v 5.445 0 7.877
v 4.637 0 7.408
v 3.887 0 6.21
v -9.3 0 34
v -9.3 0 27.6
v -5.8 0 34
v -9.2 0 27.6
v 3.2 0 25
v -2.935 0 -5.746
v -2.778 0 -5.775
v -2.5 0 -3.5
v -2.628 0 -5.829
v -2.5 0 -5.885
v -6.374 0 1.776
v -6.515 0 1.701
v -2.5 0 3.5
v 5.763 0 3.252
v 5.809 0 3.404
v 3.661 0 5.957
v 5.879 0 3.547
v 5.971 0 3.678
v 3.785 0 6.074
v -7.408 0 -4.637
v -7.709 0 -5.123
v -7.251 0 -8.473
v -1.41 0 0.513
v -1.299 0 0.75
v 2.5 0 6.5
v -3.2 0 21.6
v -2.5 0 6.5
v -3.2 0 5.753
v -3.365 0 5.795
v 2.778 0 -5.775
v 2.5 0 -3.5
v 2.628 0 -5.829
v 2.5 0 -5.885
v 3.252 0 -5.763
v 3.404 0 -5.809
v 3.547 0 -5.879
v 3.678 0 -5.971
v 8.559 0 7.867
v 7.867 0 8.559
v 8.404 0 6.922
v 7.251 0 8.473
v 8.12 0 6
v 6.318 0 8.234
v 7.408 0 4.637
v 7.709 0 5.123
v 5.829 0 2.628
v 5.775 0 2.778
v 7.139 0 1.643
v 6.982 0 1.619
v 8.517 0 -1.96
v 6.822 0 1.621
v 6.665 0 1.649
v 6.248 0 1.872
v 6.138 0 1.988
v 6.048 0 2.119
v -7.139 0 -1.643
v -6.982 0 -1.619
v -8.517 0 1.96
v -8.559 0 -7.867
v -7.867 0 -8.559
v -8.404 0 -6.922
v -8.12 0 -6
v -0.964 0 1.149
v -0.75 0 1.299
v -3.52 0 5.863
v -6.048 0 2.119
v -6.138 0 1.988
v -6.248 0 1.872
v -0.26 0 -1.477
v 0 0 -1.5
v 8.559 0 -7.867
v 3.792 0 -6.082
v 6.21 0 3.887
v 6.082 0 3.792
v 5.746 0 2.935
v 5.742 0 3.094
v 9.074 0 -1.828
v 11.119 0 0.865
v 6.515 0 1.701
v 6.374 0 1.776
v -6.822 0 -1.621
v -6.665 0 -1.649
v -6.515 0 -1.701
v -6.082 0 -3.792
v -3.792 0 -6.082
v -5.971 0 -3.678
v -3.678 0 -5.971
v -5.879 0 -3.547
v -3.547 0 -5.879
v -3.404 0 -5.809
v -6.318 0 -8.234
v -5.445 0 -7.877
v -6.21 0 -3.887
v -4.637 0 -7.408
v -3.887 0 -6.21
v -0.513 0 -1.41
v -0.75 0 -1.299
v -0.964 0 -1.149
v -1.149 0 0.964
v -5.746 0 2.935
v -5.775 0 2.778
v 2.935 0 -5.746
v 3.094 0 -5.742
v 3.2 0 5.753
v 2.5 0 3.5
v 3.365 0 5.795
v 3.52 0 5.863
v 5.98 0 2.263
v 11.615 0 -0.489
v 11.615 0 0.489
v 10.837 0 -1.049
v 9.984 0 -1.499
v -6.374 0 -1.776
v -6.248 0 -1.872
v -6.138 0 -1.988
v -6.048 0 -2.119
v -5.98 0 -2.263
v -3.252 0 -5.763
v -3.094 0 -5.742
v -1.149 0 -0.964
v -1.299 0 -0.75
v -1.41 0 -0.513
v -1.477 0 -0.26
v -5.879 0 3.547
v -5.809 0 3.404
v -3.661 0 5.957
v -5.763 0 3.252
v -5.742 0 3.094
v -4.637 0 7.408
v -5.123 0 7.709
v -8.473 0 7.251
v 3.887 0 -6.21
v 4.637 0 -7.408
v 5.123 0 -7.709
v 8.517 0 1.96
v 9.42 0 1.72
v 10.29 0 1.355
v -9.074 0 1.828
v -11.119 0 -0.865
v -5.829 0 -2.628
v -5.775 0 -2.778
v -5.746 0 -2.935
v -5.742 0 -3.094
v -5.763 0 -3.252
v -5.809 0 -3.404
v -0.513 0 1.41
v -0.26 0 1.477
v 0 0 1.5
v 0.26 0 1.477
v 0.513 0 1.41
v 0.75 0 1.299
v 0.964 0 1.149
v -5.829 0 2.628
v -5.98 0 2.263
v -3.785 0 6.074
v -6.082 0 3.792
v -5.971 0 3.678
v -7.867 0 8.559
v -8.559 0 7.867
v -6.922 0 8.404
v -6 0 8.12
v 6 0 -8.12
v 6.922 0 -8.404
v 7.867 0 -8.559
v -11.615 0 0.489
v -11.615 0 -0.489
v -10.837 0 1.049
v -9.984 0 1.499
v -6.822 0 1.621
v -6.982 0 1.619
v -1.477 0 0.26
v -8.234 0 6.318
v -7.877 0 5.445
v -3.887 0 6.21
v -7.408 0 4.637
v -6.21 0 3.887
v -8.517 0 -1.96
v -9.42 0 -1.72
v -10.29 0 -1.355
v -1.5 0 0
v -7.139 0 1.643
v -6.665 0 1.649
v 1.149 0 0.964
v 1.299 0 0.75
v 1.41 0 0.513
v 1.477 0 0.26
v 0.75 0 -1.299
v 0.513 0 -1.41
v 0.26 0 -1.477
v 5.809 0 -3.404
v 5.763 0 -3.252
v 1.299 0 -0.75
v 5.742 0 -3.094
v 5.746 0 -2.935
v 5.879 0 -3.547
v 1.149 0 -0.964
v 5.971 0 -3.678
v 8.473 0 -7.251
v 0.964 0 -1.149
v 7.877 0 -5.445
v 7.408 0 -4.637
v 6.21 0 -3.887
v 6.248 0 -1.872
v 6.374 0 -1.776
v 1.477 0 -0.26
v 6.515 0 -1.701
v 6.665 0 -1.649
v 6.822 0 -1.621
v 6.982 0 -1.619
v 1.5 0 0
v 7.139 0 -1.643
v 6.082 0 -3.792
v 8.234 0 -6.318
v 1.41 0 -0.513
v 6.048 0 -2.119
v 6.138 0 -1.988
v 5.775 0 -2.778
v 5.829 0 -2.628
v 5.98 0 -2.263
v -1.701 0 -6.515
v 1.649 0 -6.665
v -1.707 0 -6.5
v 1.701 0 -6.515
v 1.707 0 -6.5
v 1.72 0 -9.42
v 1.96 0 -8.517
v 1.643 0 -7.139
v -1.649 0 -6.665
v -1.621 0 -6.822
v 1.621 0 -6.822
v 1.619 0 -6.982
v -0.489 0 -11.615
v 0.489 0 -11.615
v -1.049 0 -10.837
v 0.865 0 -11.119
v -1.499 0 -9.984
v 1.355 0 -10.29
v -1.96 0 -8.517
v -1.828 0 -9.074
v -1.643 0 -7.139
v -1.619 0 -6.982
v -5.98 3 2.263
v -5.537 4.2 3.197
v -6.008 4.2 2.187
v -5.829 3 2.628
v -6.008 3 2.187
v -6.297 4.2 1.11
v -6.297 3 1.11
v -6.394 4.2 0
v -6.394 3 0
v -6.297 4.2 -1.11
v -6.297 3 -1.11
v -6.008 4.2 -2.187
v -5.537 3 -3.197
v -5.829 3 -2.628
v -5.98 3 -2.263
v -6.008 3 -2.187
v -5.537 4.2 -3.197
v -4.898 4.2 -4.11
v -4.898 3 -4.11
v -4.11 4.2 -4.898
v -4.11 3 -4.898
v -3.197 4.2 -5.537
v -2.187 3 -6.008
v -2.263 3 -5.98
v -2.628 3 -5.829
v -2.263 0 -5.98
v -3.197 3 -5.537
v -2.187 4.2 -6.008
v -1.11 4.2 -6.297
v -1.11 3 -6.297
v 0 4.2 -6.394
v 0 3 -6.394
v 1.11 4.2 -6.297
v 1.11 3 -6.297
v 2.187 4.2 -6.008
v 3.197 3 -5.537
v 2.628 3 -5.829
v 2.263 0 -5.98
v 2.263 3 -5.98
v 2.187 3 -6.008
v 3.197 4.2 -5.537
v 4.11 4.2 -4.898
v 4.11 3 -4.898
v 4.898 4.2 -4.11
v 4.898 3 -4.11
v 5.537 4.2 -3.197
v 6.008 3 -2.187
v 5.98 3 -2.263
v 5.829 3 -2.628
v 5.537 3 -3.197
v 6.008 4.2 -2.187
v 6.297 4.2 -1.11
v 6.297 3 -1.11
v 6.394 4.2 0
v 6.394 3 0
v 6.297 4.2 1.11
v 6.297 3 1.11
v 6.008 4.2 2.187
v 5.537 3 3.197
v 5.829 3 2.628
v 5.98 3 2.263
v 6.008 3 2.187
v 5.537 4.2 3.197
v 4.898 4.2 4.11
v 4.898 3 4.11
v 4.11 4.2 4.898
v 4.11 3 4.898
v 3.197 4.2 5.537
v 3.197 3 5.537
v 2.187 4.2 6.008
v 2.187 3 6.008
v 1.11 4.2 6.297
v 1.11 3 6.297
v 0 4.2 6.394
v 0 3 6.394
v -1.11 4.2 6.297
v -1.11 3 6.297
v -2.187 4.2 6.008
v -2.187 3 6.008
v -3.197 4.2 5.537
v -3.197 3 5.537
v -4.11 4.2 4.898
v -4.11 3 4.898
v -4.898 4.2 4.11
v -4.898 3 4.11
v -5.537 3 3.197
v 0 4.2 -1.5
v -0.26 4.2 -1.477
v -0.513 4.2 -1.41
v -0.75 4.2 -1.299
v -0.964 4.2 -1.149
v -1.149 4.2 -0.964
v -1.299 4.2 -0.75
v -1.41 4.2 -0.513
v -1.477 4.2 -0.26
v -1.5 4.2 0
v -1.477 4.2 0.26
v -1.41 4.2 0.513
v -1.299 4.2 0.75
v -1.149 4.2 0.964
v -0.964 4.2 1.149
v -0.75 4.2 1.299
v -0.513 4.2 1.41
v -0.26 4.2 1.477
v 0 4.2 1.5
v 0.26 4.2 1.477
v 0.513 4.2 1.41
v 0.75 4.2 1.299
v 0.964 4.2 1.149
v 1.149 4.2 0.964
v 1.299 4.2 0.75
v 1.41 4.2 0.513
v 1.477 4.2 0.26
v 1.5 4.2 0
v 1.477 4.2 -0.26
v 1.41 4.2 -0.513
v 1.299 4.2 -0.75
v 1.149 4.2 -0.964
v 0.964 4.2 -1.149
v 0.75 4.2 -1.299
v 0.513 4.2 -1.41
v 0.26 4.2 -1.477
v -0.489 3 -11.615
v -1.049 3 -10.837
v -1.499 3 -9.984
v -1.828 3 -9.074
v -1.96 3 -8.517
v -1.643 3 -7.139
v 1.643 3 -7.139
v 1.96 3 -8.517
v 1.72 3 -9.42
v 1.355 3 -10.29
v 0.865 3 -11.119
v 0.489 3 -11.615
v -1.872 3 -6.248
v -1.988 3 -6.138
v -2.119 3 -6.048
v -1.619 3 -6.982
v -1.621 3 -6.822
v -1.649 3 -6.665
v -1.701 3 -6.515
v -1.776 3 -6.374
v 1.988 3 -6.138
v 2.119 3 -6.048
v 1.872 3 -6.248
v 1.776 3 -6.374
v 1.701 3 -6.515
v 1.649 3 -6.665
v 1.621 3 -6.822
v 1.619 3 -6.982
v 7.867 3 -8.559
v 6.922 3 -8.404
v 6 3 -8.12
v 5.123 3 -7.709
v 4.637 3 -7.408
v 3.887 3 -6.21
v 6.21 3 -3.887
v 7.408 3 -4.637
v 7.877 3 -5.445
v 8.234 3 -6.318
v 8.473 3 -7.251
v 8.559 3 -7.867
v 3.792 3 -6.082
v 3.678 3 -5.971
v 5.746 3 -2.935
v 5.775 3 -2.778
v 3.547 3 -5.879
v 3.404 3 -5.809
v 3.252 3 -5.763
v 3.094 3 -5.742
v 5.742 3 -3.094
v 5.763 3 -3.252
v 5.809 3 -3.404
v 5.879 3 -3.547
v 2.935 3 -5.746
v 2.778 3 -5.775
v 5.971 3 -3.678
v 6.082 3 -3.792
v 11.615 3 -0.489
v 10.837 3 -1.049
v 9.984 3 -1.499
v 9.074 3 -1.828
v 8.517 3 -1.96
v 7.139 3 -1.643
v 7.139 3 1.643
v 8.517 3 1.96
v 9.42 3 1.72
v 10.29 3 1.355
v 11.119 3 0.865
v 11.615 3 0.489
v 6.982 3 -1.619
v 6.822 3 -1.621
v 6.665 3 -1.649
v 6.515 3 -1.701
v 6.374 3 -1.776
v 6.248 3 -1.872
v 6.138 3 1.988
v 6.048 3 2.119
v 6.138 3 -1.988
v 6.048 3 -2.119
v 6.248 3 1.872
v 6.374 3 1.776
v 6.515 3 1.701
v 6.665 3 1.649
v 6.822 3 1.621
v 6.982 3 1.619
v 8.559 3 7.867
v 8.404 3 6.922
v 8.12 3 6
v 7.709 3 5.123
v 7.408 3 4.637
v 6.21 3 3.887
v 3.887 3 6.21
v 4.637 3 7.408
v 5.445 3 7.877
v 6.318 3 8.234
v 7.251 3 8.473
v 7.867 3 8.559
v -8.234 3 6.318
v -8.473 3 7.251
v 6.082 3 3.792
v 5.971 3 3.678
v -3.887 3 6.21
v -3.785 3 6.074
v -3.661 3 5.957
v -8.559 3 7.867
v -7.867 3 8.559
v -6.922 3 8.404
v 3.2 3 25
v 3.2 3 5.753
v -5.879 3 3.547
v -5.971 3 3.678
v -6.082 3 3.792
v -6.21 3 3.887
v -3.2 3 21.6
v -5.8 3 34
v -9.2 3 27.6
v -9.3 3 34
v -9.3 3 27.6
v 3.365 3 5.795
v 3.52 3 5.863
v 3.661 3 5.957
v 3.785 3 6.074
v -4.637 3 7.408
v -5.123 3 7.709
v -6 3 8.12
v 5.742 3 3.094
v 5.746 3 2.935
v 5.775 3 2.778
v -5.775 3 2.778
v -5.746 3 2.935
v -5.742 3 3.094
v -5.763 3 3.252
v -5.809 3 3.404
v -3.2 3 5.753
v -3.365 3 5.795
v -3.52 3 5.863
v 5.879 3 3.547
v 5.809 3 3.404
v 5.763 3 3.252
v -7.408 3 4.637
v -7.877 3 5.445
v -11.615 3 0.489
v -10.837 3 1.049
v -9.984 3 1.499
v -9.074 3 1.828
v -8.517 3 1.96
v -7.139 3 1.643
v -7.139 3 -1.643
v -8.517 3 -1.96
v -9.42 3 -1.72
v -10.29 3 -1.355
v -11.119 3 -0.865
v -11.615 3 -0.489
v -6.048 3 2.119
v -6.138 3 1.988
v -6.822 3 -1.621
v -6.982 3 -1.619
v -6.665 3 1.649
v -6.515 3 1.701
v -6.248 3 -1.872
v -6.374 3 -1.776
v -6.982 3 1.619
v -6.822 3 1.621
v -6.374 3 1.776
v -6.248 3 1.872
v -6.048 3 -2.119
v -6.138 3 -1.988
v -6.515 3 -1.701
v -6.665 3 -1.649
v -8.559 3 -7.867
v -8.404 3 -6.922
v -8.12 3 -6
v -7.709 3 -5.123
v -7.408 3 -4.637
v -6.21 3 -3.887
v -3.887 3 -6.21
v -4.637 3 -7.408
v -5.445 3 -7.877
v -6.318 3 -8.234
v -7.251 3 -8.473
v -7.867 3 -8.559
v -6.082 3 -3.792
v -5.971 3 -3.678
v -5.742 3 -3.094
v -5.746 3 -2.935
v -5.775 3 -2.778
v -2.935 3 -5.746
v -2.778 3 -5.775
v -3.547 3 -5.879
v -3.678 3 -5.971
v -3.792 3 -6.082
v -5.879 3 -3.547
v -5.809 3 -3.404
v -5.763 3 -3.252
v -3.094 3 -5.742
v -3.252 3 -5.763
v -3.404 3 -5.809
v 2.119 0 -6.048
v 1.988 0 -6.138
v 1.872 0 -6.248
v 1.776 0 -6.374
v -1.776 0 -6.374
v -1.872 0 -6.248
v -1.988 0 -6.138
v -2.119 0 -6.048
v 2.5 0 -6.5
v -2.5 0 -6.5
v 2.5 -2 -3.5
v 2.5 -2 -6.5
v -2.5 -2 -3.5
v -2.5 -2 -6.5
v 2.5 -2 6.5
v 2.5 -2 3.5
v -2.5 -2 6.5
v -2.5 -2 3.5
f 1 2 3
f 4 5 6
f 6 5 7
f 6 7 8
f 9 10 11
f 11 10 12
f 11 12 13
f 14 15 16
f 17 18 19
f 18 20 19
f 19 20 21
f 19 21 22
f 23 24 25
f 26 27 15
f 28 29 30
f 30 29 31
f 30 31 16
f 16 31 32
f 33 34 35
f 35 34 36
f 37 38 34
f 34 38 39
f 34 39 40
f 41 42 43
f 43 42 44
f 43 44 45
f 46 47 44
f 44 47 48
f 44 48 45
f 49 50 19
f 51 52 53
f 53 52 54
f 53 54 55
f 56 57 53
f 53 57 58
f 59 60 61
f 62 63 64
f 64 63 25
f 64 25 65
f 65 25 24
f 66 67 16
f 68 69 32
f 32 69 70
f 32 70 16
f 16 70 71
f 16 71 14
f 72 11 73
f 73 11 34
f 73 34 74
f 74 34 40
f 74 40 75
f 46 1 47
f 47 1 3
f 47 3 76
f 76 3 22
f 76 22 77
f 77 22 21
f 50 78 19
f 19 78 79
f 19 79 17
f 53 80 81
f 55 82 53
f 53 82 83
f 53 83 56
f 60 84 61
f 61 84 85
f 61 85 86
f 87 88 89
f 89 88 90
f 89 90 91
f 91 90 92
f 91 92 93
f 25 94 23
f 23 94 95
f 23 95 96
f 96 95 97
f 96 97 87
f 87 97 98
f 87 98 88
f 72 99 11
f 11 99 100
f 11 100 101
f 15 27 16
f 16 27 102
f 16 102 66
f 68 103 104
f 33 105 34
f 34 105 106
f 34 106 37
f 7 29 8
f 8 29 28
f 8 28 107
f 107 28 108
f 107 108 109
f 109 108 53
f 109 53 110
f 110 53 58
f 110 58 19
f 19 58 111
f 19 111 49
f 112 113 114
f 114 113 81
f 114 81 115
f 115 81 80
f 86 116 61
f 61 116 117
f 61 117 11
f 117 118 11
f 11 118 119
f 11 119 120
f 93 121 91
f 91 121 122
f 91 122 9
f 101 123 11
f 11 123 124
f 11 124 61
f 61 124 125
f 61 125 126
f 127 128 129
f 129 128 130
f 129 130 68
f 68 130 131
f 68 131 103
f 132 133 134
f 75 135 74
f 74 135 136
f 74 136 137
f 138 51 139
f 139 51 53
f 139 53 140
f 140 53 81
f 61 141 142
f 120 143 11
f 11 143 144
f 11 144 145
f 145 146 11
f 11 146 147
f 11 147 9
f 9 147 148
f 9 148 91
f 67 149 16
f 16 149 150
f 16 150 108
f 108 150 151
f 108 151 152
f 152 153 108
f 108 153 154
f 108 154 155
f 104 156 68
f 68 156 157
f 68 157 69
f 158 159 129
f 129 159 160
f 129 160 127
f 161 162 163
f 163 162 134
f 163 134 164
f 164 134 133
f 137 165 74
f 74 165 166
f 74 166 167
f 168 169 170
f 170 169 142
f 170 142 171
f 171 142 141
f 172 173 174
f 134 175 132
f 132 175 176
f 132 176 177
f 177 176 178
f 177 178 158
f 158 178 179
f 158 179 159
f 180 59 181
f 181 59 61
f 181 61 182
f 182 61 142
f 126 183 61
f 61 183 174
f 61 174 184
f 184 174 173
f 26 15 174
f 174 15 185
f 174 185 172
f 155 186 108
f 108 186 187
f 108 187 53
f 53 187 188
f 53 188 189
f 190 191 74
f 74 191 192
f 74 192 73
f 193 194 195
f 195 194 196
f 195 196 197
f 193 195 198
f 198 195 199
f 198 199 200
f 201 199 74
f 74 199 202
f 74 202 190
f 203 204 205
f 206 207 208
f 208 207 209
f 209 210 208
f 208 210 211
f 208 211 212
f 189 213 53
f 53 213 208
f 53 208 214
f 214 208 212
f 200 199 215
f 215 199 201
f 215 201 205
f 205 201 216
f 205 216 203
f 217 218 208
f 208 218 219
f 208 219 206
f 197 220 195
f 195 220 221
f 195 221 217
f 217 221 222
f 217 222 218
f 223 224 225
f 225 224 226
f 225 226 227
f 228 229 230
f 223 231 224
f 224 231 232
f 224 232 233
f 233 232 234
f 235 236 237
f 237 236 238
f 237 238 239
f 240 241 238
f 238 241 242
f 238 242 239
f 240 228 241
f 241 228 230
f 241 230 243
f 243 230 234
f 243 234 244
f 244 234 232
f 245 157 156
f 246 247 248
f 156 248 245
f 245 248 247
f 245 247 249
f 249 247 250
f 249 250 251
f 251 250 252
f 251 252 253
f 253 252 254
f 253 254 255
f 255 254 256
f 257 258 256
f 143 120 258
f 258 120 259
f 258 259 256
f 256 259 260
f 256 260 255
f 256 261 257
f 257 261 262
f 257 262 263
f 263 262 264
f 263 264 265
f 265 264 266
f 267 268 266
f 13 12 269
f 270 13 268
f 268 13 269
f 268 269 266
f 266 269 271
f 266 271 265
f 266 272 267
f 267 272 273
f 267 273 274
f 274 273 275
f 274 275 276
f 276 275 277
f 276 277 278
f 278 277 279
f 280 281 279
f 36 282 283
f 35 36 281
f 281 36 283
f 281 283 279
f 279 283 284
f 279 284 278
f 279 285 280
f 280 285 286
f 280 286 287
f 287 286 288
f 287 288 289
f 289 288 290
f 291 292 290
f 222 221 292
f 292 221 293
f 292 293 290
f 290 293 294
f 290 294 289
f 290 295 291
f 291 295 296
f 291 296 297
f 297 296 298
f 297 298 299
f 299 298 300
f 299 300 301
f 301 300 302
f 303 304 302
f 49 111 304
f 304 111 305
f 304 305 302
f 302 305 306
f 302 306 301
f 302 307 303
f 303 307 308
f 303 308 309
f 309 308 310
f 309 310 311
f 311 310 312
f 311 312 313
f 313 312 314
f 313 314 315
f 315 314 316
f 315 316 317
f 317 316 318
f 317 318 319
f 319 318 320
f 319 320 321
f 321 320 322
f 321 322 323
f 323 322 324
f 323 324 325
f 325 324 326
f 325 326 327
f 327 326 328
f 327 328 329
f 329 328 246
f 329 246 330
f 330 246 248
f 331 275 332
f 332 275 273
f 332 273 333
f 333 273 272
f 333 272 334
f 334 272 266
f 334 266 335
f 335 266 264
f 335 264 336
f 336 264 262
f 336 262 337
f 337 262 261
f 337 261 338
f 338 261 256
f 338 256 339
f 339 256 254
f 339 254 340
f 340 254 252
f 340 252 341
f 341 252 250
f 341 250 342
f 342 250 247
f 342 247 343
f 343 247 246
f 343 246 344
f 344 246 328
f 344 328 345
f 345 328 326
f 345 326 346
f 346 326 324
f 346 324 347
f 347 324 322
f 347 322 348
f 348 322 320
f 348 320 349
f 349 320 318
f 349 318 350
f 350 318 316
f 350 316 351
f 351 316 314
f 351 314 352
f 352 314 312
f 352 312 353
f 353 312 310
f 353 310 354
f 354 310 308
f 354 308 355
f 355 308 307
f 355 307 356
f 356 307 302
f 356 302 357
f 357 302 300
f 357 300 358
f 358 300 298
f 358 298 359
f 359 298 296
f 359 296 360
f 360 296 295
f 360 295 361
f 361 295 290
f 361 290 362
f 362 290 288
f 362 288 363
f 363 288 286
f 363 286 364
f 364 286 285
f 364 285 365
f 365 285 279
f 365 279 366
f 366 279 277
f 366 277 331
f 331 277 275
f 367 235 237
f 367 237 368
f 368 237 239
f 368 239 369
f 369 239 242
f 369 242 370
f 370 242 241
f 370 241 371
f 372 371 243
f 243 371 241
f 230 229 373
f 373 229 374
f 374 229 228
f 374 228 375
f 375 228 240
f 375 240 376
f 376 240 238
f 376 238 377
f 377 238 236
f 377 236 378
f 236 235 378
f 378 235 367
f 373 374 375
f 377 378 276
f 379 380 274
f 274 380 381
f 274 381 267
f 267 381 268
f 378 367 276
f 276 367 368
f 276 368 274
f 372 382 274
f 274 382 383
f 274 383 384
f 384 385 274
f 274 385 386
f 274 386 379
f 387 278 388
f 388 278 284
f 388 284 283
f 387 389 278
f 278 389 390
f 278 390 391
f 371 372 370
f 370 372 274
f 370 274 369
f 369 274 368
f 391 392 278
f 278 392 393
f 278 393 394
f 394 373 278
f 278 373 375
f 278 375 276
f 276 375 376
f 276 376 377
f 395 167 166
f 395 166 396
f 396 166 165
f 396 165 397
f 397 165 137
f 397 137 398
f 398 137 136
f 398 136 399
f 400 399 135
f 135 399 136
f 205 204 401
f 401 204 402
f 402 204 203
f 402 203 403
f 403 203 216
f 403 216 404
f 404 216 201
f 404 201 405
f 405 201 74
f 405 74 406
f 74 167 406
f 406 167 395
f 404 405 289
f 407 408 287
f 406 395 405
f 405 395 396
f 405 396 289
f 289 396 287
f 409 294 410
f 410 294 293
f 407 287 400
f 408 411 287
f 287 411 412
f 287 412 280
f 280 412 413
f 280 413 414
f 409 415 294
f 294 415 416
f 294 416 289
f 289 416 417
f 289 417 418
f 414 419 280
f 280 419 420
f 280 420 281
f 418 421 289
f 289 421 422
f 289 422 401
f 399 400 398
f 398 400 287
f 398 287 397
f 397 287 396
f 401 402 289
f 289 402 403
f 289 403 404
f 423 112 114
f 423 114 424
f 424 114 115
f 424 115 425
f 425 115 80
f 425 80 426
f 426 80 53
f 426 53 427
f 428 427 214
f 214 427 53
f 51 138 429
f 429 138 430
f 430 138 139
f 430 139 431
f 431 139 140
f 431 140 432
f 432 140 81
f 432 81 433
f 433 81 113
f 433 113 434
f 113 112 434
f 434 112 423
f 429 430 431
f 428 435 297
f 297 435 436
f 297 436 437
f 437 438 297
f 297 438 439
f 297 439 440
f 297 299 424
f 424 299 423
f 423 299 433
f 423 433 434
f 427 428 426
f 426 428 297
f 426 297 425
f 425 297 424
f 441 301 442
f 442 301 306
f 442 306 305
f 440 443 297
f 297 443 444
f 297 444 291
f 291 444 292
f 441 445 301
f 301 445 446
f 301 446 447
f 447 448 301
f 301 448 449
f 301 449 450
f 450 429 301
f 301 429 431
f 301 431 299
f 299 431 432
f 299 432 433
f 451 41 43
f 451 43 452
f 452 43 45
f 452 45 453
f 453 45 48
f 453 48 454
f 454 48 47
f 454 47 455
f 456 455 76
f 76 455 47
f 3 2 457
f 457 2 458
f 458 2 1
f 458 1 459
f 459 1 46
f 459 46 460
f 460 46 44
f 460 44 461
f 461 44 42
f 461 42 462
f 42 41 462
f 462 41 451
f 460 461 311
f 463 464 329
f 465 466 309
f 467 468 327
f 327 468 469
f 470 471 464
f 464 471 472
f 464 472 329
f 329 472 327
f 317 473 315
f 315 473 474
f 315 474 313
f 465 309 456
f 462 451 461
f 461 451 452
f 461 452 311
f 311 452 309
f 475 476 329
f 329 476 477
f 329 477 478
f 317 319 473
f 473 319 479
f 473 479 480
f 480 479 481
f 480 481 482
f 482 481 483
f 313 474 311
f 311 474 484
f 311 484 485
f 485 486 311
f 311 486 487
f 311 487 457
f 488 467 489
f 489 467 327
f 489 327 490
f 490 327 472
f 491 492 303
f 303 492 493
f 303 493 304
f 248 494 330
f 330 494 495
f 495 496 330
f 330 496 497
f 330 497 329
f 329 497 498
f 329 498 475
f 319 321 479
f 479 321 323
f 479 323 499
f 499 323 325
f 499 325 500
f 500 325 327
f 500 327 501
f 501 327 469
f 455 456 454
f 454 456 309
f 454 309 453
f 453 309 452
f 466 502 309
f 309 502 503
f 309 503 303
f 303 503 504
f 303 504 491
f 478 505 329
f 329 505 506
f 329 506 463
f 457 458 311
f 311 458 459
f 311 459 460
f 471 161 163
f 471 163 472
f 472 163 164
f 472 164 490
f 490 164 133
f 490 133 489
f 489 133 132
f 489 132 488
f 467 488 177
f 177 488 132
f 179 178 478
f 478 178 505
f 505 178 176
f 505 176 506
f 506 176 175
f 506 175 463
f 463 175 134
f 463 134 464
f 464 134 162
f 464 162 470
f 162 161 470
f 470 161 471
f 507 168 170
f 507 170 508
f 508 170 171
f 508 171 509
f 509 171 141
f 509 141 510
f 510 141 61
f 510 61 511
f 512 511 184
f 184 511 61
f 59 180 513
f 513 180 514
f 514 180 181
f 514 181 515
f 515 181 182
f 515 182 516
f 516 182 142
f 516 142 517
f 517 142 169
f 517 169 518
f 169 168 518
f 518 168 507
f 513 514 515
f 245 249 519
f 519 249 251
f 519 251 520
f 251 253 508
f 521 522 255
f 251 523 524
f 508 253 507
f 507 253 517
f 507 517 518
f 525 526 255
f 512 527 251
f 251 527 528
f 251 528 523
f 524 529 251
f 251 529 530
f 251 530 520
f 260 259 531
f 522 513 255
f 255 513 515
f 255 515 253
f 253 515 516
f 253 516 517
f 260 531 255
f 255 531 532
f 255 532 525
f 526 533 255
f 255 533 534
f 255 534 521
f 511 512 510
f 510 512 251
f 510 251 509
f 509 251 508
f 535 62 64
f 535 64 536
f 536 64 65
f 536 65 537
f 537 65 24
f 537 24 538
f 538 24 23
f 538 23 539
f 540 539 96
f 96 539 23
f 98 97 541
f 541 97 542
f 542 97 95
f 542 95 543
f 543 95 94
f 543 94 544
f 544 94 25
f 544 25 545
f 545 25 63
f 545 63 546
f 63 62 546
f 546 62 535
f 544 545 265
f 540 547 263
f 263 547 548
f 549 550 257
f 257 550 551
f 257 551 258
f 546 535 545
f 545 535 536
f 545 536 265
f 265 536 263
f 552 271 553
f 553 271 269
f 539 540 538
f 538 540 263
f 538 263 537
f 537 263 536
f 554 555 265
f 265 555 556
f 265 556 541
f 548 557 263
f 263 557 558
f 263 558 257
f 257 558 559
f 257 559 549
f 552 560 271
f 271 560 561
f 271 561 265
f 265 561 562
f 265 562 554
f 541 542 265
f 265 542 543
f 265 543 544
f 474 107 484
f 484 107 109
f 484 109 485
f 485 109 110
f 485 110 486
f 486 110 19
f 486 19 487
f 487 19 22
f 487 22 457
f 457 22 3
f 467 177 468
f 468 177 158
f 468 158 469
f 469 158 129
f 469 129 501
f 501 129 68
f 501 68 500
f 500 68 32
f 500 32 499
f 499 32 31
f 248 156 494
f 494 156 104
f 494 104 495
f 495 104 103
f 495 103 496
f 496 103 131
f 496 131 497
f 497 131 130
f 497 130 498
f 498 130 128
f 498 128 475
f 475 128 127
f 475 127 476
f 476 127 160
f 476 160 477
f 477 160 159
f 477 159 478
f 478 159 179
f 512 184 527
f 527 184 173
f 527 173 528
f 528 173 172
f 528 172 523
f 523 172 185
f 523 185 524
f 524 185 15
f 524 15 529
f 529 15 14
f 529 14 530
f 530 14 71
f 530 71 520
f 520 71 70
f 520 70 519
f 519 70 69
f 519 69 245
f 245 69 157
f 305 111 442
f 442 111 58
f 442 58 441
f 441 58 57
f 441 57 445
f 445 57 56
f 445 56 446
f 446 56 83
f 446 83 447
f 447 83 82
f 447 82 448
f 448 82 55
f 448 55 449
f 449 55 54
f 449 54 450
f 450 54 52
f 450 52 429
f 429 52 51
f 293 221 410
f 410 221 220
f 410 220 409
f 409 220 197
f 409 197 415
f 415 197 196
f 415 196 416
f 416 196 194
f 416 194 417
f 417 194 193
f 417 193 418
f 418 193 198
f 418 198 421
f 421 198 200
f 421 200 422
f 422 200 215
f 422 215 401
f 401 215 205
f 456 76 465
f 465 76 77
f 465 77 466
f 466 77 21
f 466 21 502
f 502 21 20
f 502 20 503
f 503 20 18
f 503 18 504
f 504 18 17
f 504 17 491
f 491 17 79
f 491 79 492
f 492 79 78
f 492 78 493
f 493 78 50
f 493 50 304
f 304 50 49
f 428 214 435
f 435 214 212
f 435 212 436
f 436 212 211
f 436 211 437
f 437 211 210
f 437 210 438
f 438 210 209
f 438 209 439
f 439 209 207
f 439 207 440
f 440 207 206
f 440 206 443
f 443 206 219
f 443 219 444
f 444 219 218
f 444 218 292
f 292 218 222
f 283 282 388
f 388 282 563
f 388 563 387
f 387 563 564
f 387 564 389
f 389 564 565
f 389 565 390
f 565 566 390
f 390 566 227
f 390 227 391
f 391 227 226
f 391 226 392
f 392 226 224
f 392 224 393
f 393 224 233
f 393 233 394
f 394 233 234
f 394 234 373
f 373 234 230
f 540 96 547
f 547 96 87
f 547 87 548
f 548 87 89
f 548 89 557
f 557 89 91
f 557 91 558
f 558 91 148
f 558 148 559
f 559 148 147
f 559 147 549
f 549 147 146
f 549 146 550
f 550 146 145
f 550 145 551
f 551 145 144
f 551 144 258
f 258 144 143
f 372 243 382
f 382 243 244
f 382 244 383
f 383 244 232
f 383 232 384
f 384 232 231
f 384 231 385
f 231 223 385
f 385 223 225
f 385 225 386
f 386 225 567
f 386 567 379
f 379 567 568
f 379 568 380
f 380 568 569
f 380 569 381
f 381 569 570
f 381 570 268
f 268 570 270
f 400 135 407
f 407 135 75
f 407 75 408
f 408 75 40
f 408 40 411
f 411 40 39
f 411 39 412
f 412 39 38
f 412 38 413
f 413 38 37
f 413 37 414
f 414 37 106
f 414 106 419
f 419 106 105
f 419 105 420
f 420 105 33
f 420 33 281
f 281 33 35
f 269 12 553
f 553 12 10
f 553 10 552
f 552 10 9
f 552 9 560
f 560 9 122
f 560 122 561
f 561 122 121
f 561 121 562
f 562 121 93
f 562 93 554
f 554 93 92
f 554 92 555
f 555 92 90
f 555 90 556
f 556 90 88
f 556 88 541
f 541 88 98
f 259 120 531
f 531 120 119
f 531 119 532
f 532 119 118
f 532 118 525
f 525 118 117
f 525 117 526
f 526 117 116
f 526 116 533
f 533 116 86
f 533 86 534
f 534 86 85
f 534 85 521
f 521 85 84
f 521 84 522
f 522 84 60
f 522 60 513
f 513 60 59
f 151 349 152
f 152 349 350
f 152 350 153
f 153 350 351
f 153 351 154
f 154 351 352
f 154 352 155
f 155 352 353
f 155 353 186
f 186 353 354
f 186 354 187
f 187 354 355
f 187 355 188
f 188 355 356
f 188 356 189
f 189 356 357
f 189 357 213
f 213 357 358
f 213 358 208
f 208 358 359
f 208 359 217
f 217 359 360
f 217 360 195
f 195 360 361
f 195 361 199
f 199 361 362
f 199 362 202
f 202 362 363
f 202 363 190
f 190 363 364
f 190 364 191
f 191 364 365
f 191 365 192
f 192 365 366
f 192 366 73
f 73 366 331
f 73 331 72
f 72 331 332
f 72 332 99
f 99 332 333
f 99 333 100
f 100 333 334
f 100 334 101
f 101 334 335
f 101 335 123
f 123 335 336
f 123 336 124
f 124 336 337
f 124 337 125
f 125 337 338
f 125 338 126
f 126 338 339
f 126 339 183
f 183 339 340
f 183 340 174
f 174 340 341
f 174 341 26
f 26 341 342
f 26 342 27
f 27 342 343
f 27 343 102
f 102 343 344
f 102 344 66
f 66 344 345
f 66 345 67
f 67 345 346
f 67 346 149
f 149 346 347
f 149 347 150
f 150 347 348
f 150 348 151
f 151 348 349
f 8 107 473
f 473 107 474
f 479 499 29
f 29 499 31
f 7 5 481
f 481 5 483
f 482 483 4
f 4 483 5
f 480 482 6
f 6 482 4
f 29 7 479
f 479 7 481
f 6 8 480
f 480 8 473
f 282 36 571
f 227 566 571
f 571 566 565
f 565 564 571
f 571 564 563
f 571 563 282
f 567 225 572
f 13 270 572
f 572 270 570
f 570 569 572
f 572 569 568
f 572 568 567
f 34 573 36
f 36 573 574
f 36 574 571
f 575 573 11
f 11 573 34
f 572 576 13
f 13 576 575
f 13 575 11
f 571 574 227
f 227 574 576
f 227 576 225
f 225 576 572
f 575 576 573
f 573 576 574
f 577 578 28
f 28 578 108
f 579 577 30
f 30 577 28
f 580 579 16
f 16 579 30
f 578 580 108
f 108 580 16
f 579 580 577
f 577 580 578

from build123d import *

# Parameters (mm, degrees)
SKETCH1_R           = 6.39375
BOSS_EXTRUDE1_DEPTH = 4.2
BOSS_EXTRUDE2_DEPTH = 3
FILLET1_R           = 1
SKETCH3_R           = 1.5
CUT_EXTRUDE1_DEPTH  = 17.968242557
BOSS_EXTRUDE3_DEPTH = 3
CHAMFER1_SIZE       = 6
CHAMFER2_SIZE       = 9
SKETCH6_W           = 5
SKETCH6_H           = 3
BOSS_EXTRUDE4_DEPTH = 2


with BuildPart() as part:
    # Sketch1 → Boss-Extrude1 (new body)
    with BuildSketch(Plane(origin=(0, 0, 0), x_dir=(1, 0, 0), z_dir=(0, 1, 0))):
        with Locations(Location((0, 0, 0), (0, 0, 270))):
            Circle(SKETCH1_R)
    extrude(amount=BOSS_EXTRUDE1_DEPTH)

    # Sketch2 → Boss-Extrude2 (add)
    with BuildSketch(Plane(origin=(0, 0, 0), x_dir=(1, 0, 0), z_dir=(0, 1, 0))):
        with BuildLine():
            Line((-1.433648629, 6.23094621), (-1.959549626, 8.516625387))
            add(Edge.make_bspline(
                [(-1.959549626, 8.516625387), (-1.745269759, 9.644412797), (-1.223586565, 10.731441367), (-0.488991141, 11.614711045)],
                knots=[0, 0, 0, 0, 1, 1, 1, 1], degree=3))
            ThreePointArc((-0.488991141, 11.614711045), (0, 11.625), (0.488991141, 11.614711045))
            add(Edge.make_bspline(
                [(1.959549626, 8.516625387), (1.745269759, 9.644412797), (1.223586565, 10.731441367), (0.488991141, 11.614711045)],
                knots=[0, 0, 0, 0, 1, 1, 1, 1], degree=3))
            Line((1.959549626, 8.516625387), (1.433648629, 6.23094621))
            ThreePointArc((1.433648629, 6.23094621), (0, 6.39375), (-1.433648629, 6.23094621))
        make_face()
        with BuildLine():
            Line((3.392201651, 5.419686986), (4.636552736, 7.407774392))
            add(Edge.make_bspline(
                [(4.636552736, 7.407774392), (5.585537608, 8.053721771), (6.723068605, 8.45348132), (7.86707199, 8.558609894)],
                knots=[0, 0, 0, 0, 1, 1, 1, 1], degree=3))
            ThreePointArc((7.86707199, 8.558609894), (8.220116331, 8.220116331), (8.558609894, 7.86707199))
            add(Edge.make_bspline(
                [(7.407774392, 4.636552736), (8.053721771, 5.585537608), (8.45348132, 6.723068605), (8.558609894, 7.86707199)],
                knots=[0, 0, 0, 0, 1, 1, 1, 1], degree=3))
            Line((7.407774392, 4.636552736), (5.419686986, 3.392201651))
            ThreePointArc((5.419686986, 3.392201651), (4.521063982, 4.521063982), (3.392201651, 5.419686986))
        make_face()
        with BuildLine():
            Line((6.23094621, 1.433648629), (8.516625387, 1.959549626))
            add(Edge.make_bspline(
                [(8.516625387, 1.959549626), (9.644412797, 1.745269759), (10.731441367, 1.223586565), (11.614711045, 0.488991141)],
                knots=[0, 0, 0, 0, 1, 1, 1, 1], degree=3))
            ThreePointArc((11.614711045, 0.488991141), (11.625, 0), (11.614711045, -0.488991141))
            add(Edge.make_bspline(
                [(8.516625387, -1.959549626), (9.644412797, -1.745269759), (10.731441367, -1.223586565), (11.614711045, -0.488991141)],
                knots=[0, 0, 0, 0, 1, 1, 1, 1], degree=3))
            Line((8.516625387, -1.959549626), (6.23094621, -1.433648629))
            ThreePointArc((6.23094621, -1.433648629), (6.39375, 0), (6.23094621, 1.433648629))
        make_face()
        with BuildLine():
            Line((5.419686986, -3.392201651), (7.407774392, -4.636552736))
            add(Edge.make_bspline(
                [(7.407774392, -4.636552736), (8.053721771, -5.585537608), (8.45348132, -6.723068605), (8.558609894, -7.86707199)],
                knots=[0, 0, 0, 0, 1, 1, 1, 1], degree=3))
            ThreePointArc((8.558609894, -7.86707199), (8.220116331, -8.220116331), (7.86707199, -8.558609894))
            add(Edge.make_bspline(
                [(4.636552736, -7.407774392), (5.585537608, -8.053721771), (6.723068605, -8.45348132), (7.86707199, -8.558609894)],
                knots=[0, 0, 0, 0, 1, 1, 1, 1], degree=3))
            Line((4.636552736, -7.407774392), (3.392201651, -5.419686986))
            ThreePointArc((3.392201651, -5.419686986), (4.521063982, -4.521063982), (5.419686986, -3.392201651))
        make_face()
        with BuildLine():
            Line((1.433648629, -6.23094621), (1.959549626, -8.516625387))
            add(Edge.make_bspline(
                [(1.959549626, -8.516625387), (1.745269759, -9.644412797), (1.223586565, -10.731441367), (0.488991141, -11.614711045)],
                knots=[0, 0, 0, 0, 1, 1, 1, 1], degree=3))
            ThreePointArc((0.488991141, -11.614711045), (0, -11.625), (-0.488991141, -11.614711045))
            add(Edge.make_bspline(
                [(-1.959549626, -8.516625387), (-1.745269759, -9.644412797), (-1.223586565, -10.731441367), (-0.488991141, -11.614711045)],
                knots=[0, 0, 0, 0, 1, 1, 1, 1], degree=3))
            Line((-1.959549626, -8.516625387), (-1.433648629, -6.23094621))
            ThreePointArc((-1.433648629, -6.23094621), (0, -6.39375), (1.433648629, -6.23094621))
        make_face()
        with BuildLine():
            Line((-3.392201651, -5.419686986), (-4.636552736, -7.407774392))
            add(Edge.make_bspline(
                [(-4.636552736, -7.407774392), (-5.585537608, -8.053721771), (-6.723068605, -8.45348132), (-7.86707199, -8.558609894)],
                knots=[0, 0, 0, 0, 1, 1, 1, 1], degree=3))
            ThreePointArc((-7.86707199, -8.558609894), (-8.220116331, -8.220116331), (-8.558609894, -7.86707199))
            add(Edge.make_bspline(
                [(-7.407774392, -4.636552736), (-8.053721771, -5.585537608), (-8.45348132, -6.723068605), (-8.558609894, -7.86707199)],
                knots=[0, 0, 0, 0, 1, 1, 1, 1], degree=3))
            Line((-7.407774392, -4.636552736), (-5.419686986, -3.392201651))
            ThreePointArc((-5.419686986, -3.392201651), (-4.521063982, -4.521063982), (-3.392201651, -5.419686986))
        make_face()
        with BuildLine():
            Line((-6.23094621, -1.433648629), (-8.516625387, -1.959549626))
            add(Edge.make_bspline(
                [(-8.516625387, -1.959549626), (-9.644412797, -1.745269759), (-10.731441367, -1.223586565), (-11.614711045, -0.488991141)],
                knots=[0, 0, 0, 0, 1, 1, 1, 1], degree=3))
            ThreePointArc((-11.614711045, -0.488991141), (-11.625, 0), (-11.614711045, 0.488991141))
            add(Edge.make_bspline(
                [(-8.516625387, 1.959549626), (-9.644412797, 1.745269759), (-10.731441367, 1.223586565), (-11.614711045, 0.488991141)],
                knots=[0, 0, 0, 0, 1, 1, 1, 1], degree=3))
            Line((-8.516625387, 1.959549626), (-6.23094621, 1.433648629))
            ThreePointArc((-6.23094621, 1.433648629), (-6.39375, 0), (-6.23094621, -1.433648629))
        make_face()
        with BuildLine():
            Line((-5.419686986, 3.392201651), (-7.407774392, 4.636552736))
            add(Edge.make_bspline(
                [(-7.407774392, 4.636552736), (-8.053721771, 5.585537608), (-8.45348132, 6.723068605), (-8.558609894, 7.86707199)],
                knots=[0, 0, 0, 0, 1, 1, 1, 1], degree=3))
            ThreePointArc((-8.558609894, 7.86707199), (-8.220116331, 8.220116331), (-7.86707199, 8.558609894))
            add(Edge.make_bspline(
                [(-4.636552736, 7.407774392), (-5.585537608, 8.053721771), (-6.723068605, 8.45348132), (-7.86707199, 8.558609894)],
                knots=[0, 0, 0, 0, 1, 1, 1, 1], degree=3))
            Line((-4.636552736, 7.407774392), (-3.392201651, 5.419686986))
            ThreePointArc((-3.392201651, 5.419686986), (-4.521063982, 4.521063982), (-5.419686986, 3.392201651))
        make_face()
    extrude(amount=BOSS_EXTRUDE2_DEPTH)

    # Fillet1
    fillet1_edges = [part.edges().sort_by_distance(p)[0] for p in [
        (-5.419686986, 1.5, -3.392201651),
        (-3.392201651, 1.5, -5.419686986),
        (3.392201651, 1.5, -5.419686986),
        (5.419686986, 1.5, -3.392201651),
        (6.23094621, 1.5, -1.433648629),
        (6.23094621, 1.5, 1.433648629),
        (5.419686986, 1.5, 3.392201651),
        (3.392201651, 1.5, 5.419686986),
        (1.433648629, 1.5, 6.23094621),
        (-1.433648629, 1.5, 6.23094621),
        (-3.392201651, 1.5, 5.419686986),
        (-5.419686986, 1.5, 3.392201651),
        (-1.433648629, 1.5, -6.23094621),
        (1.433648629, 1.5, -6.23094621),
        (-6.23094621, 1.5, 1.433648629),
        (-6.23094621, 1.5, -1.433648629),
    ]]
    fillet(fillet1_edges, radius=FILLET1_R)

    # Sketch3 → Cut-Extrude1 (cut, through all)
    with BuildSketch(Plane(origin=(0, 4.2, 0), x_dir=(1, 0, 0), z_dir=(0, 1, 0))):
        with Locations(Location((0, 0, 0), (0, 0, 270))):
            Circle(SKETCH3_R)
    extrude(amount=-CUT_EXTRUDE1_DEPTH, mode=Mode.SUBTRACT)

    # Sketch5 → Boss-Extrude3 (add)
    with BuildSketch(Plane.XZ):
        Polygon((-3.2, 4), (3.2, 4), (3.2, 34), (-9.3, 34), (-9.3, 27.6), (-3.2, 27.6), align=None)
    extrude(amount=-BOSS_EXTRUDE3_DEPTH)

    # Chamfer1
    chamfer1_edges = [part.edges().sort_by_distance(p)[0] for p in [
        (-3.2, 1.5, 27.6),
    ]]
    chamfer(chamfer1_edges, length=CHAMFER1_SIZE)

    # Chamfer2
    chamfer2_edges = [part.edges().sort_by_distance(p)[0] for p in [
        (3.2, 1.5, 34),
    ]]
    chamfer(chamfer2_edges, length=CHAMFER2_SIZE)

    # Sketch6 → Boss-Extrude4 (add)
    with BuildSketch(Plane.XZ):
        with Locations((0, -5)):
            Rectangle(SKETCH6_W, SKETCH6_H)
        with Locations((0, 5)):
            Rectangle(SKETCH6_W, SKETCH6_H)
    extrude(amount=BOSS_EXTRUDE4_DEPTH)


solid = part.part
